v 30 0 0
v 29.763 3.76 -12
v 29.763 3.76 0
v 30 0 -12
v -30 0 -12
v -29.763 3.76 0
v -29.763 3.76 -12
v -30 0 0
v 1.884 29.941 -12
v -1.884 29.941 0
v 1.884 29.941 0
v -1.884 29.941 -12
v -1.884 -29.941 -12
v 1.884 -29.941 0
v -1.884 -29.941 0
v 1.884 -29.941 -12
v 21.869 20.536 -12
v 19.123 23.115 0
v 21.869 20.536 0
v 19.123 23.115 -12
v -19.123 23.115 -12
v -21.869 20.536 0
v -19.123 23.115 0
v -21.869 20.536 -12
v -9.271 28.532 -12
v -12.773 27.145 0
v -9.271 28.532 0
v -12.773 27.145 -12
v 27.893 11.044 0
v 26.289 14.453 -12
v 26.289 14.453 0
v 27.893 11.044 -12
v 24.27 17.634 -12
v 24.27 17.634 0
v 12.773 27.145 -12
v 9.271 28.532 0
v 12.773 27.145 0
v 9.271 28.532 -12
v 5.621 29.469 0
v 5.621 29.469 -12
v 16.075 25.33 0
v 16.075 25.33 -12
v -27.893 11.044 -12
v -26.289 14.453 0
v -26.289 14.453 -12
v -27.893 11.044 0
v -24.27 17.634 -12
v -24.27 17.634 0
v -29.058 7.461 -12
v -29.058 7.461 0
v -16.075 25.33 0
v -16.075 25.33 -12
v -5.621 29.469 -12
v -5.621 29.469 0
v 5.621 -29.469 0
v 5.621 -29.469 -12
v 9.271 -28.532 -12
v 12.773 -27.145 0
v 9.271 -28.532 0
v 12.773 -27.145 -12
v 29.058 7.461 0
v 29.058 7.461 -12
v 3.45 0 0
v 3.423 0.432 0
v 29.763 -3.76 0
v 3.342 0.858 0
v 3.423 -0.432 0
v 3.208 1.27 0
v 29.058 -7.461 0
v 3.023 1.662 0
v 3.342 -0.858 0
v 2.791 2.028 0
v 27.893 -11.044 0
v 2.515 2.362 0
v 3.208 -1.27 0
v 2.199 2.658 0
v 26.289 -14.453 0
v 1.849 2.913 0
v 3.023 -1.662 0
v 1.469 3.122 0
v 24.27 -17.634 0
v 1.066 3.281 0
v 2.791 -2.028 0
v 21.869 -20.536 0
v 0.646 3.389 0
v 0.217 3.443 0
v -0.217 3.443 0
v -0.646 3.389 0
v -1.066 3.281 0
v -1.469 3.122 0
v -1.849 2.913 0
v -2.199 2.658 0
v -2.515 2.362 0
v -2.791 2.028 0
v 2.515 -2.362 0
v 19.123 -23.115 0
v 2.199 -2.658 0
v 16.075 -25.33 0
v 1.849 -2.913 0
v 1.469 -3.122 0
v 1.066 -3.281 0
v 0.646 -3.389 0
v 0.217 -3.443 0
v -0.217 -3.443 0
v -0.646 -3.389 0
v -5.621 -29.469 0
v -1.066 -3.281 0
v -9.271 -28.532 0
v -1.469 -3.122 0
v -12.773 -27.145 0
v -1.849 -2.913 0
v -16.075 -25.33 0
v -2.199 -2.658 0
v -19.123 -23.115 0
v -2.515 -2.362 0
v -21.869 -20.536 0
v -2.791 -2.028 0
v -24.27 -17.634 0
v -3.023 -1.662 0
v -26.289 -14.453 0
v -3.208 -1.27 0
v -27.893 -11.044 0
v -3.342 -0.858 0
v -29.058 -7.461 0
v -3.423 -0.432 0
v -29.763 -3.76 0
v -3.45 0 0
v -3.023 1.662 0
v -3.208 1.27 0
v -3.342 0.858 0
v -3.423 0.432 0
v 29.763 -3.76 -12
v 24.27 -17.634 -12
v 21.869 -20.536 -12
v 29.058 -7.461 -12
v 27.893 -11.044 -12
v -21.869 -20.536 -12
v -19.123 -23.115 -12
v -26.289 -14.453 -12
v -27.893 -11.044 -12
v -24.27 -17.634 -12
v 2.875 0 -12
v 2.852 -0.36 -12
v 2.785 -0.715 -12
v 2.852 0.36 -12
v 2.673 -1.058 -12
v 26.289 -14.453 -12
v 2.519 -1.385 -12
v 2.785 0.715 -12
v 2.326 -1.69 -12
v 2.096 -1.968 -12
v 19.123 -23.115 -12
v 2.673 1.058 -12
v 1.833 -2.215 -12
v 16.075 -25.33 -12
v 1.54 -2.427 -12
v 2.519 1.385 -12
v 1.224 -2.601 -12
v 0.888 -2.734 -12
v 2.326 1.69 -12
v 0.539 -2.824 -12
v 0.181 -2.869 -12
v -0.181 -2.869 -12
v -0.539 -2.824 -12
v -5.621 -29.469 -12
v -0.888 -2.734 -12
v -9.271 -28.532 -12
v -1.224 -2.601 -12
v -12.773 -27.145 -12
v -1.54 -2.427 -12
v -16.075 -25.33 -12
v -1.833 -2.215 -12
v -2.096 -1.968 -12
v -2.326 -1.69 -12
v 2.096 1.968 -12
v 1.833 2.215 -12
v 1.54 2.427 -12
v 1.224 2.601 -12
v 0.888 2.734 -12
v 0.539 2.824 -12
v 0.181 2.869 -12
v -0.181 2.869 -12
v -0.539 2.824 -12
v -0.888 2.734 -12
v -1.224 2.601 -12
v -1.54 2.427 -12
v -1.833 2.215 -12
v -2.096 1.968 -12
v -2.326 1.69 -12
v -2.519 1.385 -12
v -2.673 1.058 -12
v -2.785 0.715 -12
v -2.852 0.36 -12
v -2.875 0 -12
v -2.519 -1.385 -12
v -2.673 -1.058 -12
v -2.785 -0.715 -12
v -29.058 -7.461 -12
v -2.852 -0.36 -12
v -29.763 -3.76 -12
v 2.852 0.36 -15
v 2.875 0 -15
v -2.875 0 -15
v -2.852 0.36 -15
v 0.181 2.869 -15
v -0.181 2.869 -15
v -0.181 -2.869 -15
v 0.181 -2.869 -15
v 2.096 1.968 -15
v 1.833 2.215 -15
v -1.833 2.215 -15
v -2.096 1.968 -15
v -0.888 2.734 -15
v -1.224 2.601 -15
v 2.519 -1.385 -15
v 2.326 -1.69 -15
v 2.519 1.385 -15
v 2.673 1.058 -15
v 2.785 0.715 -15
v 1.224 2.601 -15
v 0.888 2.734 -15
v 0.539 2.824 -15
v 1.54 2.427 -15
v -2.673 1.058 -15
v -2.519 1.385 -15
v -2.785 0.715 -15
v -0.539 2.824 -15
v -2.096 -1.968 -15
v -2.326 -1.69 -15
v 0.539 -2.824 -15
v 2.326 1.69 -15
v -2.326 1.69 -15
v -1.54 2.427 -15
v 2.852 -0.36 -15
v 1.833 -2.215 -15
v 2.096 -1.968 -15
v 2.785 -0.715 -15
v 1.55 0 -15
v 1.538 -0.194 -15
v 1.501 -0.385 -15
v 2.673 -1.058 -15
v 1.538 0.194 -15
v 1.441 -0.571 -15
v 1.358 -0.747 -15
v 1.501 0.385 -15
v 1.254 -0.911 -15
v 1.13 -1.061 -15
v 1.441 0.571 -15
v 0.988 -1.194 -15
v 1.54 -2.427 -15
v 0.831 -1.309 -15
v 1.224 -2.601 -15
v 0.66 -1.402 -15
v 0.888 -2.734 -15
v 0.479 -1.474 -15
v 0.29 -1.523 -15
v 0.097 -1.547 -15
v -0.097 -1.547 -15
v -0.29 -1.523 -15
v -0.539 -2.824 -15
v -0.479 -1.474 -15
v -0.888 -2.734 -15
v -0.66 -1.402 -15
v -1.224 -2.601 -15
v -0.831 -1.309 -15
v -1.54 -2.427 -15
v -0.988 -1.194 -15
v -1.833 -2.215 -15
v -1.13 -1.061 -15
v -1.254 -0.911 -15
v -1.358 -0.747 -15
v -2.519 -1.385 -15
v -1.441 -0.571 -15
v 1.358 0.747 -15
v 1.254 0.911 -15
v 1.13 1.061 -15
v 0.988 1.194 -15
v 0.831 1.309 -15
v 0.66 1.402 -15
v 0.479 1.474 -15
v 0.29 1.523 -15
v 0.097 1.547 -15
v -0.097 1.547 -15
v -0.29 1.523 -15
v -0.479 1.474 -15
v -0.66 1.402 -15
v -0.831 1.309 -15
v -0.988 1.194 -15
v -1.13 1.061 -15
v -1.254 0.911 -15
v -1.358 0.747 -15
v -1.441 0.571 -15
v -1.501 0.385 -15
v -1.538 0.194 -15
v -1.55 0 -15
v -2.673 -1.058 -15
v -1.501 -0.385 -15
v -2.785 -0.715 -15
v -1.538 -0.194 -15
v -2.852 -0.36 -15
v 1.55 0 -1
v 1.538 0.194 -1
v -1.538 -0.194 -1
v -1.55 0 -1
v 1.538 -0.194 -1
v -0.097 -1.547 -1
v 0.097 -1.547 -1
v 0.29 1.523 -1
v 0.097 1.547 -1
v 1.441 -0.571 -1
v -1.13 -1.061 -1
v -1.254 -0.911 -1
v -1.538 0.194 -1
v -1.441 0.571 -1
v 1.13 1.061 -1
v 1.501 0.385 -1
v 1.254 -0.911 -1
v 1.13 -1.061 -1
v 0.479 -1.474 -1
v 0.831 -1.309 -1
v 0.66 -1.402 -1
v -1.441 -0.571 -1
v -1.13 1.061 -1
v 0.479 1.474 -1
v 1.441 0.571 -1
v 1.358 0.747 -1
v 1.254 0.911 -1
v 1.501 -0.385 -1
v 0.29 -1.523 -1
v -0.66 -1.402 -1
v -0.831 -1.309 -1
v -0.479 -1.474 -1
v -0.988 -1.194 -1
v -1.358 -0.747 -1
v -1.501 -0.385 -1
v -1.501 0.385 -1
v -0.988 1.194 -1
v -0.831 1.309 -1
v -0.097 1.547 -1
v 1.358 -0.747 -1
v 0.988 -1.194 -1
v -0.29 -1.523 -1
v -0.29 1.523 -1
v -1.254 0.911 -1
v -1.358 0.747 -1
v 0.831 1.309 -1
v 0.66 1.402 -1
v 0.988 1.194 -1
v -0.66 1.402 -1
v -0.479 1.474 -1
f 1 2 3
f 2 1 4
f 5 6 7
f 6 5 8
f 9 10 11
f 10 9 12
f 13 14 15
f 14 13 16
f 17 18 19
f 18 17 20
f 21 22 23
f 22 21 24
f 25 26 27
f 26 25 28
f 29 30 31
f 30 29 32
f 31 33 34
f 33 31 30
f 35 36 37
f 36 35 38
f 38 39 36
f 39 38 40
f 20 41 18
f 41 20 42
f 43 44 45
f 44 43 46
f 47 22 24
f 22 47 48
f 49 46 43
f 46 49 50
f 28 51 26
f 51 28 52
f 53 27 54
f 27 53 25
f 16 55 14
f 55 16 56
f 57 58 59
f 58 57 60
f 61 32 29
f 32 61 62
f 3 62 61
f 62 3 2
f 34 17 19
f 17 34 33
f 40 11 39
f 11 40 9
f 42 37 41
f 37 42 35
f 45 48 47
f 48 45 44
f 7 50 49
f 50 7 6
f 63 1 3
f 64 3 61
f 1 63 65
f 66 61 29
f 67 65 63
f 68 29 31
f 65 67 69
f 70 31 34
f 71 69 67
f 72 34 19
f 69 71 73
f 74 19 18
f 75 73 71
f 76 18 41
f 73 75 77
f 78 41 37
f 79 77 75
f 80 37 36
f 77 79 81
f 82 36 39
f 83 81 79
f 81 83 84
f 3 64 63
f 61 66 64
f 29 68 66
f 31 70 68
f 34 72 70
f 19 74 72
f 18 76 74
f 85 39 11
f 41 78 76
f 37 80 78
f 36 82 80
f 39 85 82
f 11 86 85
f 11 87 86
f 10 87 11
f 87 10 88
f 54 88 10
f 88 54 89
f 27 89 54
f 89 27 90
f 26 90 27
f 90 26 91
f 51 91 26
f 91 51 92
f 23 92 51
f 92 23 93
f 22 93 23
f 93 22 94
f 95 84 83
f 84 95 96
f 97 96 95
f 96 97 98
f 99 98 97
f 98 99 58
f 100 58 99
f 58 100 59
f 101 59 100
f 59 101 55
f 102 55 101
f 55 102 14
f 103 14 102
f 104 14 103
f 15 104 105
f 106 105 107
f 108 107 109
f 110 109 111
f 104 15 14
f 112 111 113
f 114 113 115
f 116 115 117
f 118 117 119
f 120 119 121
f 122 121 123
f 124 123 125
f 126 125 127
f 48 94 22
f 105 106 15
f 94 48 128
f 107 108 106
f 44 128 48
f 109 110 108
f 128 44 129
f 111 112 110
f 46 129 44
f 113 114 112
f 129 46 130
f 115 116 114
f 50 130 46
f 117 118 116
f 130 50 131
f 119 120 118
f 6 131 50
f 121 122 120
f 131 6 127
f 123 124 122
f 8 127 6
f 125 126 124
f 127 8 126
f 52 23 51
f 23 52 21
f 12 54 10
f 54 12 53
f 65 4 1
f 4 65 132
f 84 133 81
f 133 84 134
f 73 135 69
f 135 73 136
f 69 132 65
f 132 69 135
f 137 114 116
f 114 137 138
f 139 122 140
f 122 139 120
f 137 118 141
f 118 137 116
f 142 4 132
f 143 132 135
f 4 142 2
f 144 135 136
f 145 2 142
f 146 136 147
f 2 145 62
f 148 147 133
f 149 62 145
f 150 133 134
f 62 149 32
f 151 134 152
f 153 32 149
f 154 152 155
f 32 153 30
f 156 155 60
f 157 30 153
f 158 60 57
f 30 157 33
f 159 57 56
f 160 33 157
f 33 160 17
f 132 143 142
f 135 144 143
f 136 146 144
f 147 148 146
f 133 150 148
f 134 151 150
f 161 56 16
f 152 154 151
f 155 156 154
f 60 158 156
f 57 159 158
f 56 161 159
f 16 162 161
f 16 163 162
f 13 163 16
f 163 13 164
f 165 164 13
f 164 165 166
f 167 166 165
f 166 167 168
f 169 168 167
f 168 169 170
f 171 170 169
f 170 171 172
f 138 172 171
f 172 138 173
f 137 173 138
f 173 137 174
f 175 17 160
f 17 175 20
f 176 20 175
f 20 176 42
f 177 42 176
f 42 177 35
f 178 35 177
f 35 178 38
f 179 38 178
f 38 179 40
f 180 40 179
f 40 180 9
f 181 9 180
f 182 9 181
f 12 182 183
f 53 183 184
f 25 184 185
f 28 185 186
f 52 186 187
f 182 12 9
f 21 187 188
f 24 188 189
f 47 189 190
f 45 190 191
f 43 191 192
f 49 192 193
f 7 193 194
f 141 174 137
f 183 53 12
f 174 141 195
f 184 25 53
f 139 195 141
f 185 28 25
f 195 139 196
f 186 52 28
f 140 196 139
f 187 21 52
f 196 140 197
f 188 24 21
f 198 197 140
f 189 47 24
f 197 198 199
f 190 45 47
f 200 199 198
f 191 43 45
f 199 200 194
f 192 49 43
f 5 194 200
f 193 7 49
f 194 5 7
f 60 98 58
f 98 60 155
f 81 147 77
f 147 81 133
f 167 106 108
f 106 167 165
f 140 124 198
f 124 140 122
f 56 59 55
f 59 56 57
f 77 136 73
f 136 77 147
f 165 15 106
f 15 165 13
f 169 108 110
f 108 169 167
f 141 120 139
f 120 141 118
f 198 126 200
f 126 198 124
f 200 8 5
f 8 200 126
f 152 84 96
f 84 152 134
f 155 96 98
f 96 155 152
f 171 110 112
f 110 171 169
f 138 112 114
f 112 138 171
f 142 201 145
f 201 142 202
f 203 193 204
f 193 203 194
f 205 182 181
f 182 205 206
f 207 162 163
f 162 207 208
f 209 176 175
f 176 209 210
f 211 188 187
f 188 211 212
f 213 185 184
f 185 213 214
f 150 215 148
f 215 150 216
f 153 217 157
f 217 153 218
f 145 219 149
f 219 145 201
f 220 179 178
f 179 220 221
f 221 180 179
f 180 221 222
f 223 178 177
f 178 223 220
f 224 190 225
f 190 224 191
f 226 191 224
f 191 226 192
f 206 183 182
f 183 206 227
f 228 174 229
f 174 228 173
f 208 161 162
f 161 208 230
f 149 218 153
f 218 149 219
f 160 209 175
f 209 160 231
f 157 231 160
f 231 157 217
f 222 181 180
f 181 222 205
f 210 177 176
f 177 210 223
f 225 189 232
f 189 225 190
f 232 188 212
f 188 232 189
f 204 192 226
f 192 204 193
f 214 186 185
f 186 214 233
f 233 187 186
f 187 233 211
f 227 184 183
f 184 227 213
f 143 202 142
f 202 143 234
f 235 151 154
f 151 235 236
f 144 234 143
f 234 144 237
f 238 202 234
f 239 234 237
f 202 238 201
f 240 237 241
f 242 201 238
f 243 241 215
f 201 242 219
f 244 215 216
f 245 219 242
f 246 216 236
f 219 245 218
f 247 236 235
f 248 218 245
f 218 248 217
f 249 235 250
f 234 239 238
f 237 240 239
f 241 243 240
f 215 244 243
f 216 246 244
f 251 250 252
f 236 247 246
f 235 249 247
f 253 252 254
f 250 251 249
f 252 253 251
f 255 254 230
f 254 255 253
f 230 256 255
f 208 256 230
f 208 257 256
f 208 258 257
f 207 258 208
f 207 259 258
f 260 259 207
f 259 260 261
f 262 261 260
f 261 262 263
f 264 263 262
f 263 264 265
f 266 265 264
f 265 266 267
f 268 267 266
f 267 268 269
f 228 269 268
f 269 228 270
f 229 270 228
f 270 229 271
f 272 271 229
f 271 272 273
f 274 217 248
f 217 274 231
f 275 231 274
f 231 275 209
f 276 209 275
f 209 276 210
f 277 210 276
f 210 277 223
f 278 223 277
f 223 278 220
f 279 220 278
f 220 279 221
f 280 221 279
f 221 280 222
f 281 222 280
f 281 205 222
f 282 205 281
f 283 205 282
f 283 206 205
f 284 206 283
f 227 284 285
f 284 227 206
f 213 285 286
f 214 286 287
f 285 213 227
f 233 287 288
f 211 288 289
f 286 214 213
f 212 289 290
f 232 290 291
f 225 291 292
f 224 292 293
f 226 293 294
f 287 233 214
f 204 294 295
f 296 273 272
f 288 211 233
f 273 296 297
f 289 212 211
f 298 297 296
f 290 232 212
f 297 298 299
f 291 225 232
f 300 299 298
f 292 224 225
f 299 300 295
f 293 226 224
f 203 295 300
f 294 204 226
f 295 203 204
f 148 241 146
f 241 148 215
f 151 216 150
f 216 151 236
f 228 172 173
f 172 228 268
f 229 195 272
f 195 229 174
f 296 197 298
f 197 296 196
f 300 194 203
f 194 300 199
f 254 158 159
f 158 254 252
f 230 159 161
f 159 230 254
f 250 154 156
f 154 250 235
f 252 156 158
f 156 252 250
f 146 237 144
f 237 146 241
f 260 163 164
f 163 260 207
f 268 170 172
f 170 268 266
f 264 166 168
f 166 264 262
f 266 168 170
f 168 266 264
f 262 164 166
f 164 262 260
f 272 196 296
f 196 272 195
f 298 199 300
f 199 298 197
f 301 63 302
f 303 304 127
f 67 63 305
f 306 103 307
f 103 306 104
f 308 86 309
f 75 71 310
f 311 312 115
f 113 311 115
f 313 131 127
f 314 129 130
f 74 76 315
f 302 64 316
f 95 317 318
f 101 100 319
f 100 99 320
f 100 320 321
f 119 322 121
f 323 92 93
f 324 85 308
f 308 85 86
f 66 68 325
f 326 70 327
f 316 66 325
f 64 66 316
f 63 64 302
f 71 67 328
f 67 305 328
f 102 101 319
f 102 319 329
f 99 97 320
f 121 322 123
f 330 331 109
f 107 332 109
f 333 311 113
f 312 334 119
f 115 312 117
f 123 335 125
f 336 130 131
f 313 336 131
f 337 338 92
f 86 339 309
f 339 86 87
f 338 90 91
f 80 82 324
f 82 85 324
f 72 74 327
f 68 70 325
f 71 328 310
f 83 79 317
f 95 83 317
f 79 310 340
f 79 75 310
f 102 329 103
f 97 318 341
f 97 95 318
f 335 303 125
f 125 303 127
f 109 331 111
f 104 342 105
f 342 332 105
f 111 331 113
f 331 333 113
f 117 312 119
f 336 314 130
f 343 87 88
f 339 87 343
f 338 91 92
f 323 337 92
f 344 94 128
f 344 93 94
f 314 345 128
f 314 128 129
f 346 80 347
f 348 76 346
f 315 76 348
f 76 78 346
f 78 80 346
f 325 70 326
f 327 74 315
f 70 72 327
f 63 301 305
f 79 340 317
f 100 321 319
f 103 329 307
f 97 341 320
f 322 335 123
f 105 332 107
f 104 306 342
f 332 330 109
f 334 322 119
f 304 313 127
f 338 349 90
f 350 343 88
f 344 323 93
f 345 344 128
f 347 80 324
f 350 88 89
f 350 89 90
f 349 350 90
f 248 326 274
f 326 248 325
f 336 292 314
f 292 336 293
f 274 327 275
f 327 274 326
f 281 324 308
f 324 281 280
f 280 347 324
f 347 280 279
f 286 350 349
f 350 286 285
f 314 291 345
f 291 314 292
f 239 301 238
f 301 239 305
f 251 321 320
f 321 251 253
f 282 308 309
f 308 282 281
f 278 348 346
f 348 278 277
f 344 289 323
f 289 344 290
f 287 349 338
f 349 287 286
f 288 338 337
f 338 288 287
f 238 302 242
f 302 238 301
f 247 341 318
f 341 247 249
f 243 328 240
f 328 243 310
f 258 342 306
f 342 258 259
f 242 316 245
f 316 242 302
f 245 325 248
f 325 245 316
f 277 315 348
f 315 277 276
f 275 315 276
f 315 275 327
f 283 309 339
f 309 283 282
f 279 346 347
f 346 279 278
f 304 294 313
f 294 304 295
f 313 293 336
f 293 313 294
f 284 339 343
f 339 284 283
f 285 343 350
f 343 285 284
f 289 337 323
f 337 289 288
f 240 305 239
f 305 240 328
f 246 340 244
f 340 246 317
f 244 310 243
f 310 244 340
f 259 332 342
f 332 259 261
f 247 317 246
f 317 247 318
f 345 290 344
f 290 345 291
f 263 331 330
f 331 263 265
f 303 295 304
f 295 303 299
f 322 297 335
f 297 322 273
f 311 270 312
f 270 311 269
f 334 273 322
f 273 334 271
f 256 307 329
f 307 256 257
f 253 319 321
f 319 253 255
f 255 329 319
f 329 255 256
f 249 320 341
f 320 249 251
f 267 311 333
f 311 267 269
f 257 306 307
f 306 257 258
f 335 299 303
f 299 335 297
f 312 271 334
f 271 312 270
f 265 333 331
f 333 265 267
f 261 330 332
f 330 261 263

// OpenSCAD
$fn = 50;


difference() {
	union() {
		translate(v = [0, 0, -12.0000000000]) {
			cylinder(h = 12, r = 30.0000000000);
		}
		translate(v = [0, 0, -15.0000000000]) {
			cylinder(h = 15, r = 2.8750000000);
		}
	}
	union() {
		translate(v = [0, 0, 0]) {
			rotate(a = [0, 0, 0]) {
				difference() {
					union() {
						translate(v = [0, 0, -15.0000000000]) {
							cylinder(h = 15, r = 1.2500000000);
						}
						translate(v = [0, 0, -1.0000000000]) {
							cylinder(h = 1.0000000000, r1 = 1.5500000000, r2 = 3.4500000000);
						}
						translate(v = [0, 0, -15.0000000000]) {
							cylinder(h = 15, r = 1.5500000000);
						}
						translate(v = [0, 0, -15.0000000000]) {
							cylinder(h = 15, r = 1.2500000000);
						}
					}
					union();
				}
			}
		}
	}
}
